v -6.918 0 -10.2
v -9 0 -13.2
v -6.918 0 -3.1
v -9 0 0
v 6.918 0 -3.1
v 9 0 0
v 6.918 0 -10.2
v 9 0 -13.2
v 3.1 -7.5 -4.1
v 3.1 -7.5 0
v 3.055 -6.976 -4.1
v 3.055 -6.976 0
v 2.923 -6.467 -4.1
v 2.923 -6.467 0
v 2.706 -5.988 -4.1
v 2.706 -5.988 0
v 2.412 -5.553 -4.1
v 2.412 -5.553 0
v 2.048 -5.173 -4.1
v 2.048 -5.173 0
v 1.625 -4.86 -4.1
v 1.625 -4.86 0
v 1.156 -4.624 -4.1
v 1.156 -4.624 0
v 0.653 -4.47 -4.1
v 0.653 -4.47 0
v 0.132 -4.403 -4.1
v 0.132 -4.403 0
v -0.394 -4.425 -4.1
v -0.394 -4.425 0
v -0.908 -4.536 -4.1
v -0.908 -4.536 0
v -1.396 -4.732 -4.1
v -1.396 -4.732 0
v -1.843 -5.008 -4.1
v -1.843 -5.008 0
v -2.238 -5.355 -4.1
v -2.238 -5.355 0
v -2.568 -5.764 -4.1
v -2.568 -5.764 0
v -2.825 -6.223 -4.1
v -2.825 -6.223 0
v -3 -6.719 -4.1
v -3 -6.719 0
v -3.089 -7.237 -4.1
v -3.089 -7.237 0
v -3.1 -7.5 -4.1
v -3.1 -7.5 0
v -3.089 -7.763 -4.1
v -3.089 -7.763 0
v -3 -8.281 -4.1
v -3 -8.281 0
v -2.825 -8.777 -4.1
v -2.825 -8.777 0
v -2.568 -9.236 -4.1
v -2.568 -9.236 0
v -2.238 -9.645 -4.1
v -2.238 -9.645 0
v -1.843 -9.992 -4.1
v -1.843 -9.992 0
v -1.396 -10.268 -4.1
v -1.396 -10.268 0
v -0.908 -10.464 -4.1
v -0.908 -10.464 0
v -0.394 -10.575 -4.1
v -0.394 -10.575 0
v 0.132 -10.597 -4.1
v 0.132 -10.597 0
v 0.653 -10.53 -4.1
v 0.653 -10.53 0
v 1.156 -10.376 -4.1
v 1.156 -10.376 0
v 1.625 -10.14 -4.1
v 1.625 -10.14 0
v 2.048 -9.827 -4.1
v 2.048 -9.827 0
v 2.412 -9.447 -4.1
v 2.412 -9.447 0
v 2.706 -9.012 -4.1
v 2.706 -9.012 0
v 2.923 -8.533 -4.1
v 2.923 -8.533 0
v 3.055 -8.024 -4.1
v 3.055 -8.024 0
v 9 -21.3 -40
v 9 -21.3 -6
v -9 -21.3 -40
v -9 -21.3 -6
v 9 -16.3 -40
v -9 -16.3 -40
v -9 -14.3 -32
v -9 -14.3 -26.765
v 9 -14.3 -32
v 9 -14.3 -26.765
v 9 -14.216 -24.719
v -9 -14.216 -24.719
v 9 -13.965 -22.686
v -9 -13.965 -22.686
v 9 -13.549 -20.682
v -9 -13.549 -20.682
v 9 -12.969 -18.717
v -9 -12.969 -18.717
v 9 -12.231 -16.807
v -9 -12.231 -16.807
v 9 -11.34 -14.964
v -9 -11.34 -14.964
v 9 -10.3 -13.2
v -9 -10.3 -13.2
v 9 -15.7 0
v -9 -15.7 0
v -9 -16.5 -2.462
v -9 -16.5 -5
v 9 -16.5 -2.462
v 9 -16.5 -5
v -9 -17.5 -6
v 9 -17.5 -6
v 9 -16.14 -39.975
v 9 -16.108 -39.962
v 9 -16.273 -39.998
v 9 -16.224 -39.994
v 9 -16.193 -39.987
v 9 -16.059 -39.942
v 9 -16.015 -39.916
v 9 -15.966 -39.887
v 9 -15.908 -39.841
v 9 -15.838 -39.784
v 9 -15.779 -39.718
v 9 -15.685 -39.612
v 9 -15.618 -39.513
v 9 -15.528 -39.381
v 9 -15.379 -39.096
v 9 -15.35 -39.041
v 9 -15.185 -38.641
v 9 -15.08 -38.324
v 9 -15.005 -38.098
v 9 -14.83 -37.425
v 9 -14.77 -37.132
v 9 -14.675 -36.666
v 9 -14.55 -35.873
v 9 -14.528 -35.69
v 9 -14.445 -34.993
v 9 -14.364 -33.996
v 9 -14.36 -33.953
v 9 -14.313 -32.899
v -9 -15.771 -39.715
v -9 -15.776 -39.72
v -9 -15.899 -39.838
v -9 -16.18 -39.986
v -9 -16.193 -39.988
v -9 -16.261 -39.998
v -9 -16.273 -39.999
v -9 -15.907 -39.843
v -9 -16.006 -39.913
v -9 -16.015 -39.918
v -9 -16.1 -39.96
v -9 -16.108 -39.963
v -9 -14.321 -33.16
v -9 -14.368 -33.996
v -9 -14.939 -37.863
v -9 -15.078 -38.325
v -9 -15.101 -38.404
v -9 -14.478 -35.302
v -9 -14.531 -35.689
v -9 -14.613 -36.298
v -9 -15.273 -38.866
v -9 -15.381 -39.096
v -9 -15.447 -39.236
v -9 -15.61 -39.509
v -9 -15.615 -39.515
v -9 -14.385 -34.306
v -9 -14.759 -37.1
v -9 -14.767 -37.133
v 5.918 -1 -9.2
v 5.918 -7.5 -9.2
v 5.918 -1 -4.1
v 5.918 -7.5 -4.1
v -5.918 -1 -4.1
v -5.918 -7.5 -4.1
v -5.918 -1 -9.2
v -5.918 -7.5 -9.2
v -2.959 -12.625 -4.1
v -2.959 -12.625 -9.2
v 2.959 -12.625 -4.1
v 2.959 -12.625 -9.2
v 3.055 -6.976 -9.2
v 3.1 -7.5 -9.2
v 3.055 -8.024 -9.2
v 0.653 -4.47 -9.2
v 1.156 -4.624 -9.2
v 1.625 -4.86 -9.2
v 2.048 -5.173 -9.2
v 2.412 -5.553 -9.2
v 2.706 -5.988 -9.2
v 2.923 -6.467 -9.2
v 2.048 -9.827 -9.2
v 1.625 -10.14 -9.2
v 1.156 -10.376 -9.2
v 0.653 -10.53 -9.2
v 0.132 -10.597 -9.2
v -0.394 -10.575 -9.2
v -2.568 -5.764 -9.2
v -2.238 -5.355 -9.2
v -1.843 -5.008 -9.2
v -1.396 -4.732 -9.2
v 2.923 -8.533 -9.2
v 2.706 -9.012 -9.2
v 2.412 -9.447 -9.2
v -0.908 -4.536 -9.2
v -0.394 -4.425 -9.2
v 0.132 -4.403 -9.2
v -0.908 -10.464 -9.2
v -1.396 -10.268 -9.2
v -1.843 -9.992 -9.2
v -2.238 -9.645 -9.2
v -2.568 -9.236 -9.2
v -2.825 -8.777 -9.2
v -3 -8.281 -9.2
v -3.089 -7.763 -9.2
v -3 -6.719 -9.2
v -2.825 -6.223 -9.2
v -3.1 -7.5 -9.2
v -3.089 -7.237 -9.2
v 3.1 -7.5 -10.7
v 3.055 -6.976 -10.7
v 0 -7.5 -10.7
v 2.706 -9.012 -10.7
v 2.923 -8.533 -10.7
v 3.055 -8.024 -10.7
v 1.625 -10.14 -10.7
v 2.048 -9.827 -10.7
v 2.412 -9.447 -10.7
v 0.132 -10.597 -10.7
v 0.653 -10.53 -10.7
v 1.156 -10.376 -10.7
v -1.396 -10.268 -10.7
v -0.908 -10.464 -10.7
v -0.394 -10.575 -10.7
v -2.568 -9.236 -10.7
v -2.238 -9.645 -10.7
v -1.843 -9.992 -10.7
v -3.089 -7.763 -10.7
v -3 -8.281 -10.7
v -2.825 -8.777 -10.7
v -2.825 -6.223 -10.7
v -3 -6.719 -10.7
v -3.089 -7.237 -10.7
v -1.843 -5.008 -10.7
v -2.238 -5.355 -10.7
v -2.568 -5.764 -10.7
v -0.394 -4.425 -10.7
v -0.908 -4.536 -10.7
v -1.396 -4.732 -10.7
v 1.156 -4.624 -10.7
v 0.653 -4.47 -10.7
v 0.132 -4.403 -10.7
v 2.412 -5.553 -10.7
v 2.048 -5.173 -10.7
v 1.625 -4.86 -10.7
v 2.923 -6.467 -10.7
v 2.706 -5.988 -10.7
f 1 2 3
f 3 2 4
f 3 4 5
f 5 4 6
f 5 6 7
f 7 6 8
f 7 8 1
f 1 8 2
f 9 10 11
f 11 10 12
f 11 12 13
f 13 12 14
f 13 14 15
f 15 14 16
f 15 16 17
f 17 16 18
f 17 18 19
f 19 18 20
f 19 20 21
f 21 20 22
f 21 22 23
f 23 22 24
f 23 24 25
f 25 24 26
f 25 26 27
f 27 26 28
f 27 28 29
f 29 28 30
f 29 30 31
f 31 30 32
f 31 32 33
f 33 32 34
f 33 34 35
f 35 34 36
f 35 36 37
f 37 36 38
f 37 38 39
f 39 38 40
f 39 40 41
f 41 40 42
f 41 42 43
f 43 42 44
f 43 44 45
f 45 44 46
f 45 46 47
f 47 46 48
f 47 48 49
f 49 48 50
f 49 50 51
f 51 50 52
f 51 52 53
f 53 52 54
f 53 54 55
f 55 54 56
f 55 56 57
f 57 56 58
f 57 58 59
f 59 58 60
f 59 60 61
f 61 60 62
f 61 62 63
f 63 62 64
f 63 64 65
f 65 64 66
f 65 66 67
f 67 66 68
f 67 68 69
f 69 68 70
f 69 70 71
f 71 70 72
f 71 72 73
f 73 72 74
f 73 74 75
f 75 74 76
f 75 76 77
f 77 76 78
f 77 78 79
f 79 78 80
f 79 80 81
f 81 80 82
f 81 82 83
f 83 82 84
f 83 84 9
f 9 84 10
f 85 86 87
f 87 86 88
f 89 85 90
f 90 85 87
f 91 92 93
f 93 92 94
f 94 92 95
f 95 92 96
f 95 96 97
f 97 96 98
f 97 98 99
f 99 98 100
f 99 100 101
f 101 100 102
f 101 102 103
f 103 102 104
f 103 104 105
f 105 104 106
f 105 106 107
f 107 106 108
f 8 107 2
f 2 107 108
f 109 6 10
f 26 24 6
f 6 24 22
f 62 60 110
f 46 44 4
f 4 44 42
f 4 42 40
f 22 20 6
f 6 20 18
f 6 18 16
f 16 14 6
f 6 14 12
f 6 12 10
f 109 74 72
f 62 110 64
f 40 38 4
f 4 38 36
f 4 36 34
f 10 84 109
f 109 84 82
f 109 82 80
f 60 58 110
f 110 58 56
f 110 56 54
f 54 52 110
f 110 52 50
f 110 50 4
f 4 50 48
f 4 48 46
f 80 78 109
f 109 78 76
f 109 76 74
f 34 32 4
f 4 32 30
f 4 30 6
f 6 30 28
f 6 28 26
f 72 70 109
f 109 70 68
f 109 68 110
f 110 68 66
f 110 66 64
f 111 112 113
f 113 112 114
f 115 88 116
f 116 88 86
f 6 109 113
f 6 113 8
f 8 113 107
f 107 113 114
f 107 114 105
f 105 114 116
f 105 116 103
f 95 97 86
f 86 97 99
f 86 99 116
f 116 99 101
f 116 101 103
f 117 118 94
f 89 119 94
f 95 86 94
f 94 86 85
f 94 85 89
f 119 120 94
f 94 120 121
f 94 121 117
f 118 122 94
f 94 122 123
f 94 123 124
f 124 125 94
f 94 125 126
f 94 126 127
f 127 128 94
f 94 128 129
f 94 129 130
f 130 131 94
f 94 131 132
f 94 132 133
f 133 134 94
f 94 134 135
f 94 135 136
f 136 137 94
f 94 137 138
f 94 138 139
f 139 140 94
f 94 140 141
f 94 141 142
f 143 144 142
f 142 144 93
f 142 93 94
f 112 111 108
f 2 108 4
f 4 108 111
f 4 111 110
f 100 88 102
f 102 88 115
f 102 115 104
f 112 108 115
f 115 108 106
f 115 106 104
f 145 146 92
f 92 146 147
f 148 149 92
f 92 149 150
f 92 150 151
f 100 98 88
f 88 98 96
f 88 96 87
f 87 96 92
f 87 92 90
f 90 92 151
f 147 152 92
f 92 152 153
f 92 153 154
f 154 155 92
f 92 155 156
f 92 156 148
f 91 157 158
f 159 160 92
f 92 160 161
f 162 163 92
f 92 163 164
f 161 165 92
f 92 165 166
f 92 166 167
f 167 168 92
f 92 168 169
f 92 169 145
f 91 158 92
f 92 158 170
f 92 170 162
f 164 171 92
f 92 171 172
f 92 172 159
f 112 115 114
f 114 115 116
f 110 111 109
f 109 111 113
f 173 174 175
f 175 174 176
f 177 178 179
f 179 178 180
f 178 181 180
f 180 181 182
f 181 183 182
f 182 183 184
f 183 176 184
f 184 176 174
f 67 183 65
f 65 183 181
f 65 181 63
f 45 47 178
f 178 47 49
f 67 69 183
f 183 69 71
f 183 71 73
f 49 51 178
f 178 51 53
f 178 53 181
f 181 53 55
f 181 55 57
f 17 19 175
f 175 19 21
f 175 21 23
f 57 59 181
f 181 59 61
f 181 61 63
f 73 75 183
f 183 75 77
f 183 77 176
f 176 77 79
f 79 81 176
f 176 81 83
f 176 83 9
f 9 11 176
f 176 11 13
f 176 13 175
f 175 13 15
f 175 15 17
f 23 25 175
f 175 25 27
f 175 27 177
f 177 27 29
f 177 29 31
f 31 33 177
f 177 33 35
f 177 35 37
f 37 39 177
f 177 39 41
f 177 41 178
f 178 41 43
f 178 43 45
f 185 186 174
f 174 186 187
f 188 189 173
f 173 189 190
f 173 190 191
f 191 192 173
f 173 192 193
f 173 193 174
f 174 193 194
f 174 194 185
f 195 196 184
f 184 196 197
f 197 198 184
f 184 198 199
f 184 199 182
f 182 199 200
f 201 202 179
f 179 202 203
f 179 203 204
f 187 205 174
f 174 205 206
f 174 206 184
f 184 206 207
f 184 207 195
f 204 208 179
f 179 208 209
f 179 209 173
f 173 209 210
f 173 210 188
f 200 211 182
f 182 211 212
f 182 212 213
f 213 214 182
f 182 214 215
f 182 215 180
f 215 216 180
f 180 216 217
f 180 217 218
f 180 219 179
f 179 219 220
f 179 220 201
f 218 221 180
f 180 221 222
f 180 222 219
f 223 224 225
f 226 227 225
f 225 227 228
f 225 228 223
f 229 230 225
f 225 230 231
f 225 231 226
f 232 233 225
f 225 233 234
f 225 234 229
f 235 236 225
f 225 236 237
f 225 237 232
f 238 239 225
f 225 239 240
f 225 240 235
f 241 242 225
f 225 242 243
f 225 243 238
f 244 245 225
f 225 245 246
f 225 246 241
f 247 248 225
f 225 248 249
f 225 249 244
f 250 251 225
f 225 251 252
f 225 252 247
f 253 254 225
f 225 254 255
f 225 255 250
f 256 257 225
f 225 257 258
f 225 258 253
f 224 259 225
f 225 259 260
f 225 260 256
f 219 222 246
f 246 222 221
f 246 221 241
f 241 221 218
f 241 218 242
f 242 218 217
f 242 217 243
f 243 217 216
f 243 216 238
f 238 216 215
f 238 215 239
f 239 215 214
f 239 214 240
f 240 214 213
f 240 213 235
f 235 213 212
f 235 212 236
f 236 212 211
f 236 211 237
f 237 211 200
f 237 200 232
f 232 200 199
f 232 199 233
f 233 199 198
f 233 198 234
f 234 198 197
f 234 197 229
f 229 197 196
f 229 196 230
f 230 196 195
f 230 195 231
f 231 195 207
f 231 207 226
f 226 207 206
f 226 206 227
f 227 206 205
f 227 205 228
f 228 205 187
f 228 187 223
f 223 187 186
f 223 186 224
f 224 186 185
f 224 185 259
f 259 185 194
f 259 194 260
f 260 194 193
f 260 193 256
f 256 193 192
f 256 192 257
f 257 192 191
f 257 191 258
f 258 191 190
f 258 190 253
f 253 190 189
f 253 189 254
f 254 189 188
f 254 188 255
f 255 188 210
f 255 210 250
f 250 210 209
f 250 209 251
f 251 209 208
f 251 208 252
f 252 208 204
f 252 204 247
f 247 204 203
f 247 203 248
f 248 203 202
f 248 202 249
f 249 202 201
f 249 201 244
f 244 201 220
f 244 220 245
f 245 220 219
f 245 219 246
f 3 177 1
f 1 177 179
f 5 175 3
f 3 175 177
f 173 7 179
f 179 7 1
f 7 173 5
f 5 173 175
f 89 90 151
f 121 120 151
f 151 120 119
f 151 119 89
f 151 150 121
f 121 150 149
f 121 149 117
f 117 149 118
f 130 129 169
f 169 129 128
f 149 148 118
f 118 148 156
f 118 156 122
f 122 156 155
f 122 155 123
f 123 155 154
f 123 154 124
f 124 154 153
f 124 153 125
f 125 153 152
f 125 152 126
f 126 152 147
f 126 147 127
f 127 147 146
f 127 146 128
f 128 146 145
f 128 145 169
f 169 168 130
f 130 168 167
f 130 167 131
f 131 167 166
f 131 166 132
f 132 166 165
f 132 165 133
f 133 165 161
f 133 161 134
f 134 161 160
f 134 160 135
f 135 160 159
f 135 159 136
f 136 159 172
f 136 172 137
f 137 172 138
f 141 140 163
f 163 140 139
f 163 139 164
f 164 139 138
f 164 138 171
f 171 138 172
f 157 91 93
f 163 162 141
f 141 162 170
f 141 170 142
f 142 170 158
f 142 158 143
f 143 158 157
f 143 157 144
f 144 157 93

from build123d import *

# Parameters (mm, degrees)
RESSALTO_EXTRUS_O1_DEPTH = 9
CHANFRO5_SIZE            = 1
CHAMFER1_SIZE            = 0.8
CHAMFER1_SIZE2           = 2.46214683
ESBO_O3_R                = 3.1
CORTE_EXTRUS_O1_DEPTH    = 10.7
CORTE_EXTRUS_O4_START    = -4
CORTE_EXTRUS_O4_DEPTH    = 5.1
CHAMFER2_SIZE            = 1
FILETE1_SIZE             = 2
FILETE1_SIZE_2           = 8


with BuildPart() as part:
    # Esboço2 → Ressalto-extrusão1 (new, symmetric)
    with BuildSketch(Plane(origin=(0, 0, 0), x_dir=(0, 0, -1), z_dir=(1, 0, 0))):
        with BuildLine():
            Line((0, 0), (0, -16.5))
            Line((0, -16.5), (6, -16.5))
            Line((6, -16.5), (6, -21.3))
            Line((6, -21.3), (40, -21.3))
            Line((40, -21.3), (40, -14.3))
            Line((40, -14.3), (26.764659966, -14.3))
            ThreePointArc((26.764659966, -14.3), (19.693592154, -13.279157617), (13.2, -10.3))
            Line((13.2, -10.3), (13.2, 0))
            Line((13.2, 0), (0, 0))
        make_face()
    extrude(amount=RESSALTO_EXTRUS_O1_DEPTH, both=True)

    # Chanfro5
    chanfro5_edges = [part.edges().sort_by_distance(p)[0] for p in [
        (0, -16.5, -6),
    ]]
    chamfer(chanfro5_edges, length=CHANFRO5_SIZE)

    # Chamfer1
    chamfer1_edges = [part.edges().sort_by_distance(p)[0] for p in [
        (0, -16.5, 0),
    ]]
    chamfer1_side = [part.faces().sort_by_distance(p)[0] for p in [
        (0, -8.25, 0),
    ]]
    chamfer(chamfer1_edges, length=CHAMFER1_SIZE, length2=CHAMFER1_SIZE2, reference=chamfer1_side[0])

    # Esboço3 → Corte-extrusão1 (cut)
    with BuildSketch(Plane(origin=(0, 0, 0), x_dir=(-1, 0, 0), z_dir=(0, 0, -1))):
        with Locations(Location((0, -7.5, 0), (0, 0, 180))):
            Circle(ESBO_O3_R)
    extrude(amount=CORTE_EXTRUS_O1_DEPTH, mode=Mode.SUBTRACT)

    # Esboço7 → Corte-extrusão4 (cut)
    with BuildSketch(Plane(origin=(0, 0, -13.2), x_dir=(-1, 0, 0), z_dir=(0, 0, -1)).offset(CORTE_EXTRUS_O4_START)):
        Polygon((2.95892013, -2.375), (5.917840259, -7.5), (5.917840259, 0), (-5.917840259, 0), (-5.917840259, -7.5), (-2.95892013, -2.375), align=None)
        Polygon((2.95892013, -12.625), (5.917840259, -7.5), (2.95892013, -2.375), (-2.95892013, -2.375), (-5.917840259, -7.5), (-2.95892013, -12.625), align=None)
    extrude(amount=-CORTE_EXTRUS_O4_DEPTH, mode=Mode.SUBTRACT)

    # Chamfer2
    chamfer2_edges = [part.edges().sort_by_distance(p)[0] for p in [
        (0, 0, -4.1),
        (5.917840259, 0, -6.65),
        (-5.917840259, 0, -6.65),
        (0, 0, -9.2),
    ]]
    chamfer(chamfer2_edges, length=CHAMFER2_SIZE)

    # Filete1
    # an asymmetric fillet: 8, 2 mm, written as the material it takes off along each edge
    with BuildSketch(Plane(origin=(-29, -14.3, -40), x_dir=(0, -1, 0), z_dir=(1, 0, 0))) as filete1_piece_1:
        with BuildLine():
            Bezier((FILETE1_SIZE, 0), (0, 0), (0, -FILETE1_SIZE_2), weights=[1, 0.707106781, 1])
            Line((0, -FILETE1_SIZE_2), (0, 0))
            Line((0, 0), (FILETE1_SIZE, 0))
        make_face()
    extrude(amount=58, mode=Mode.SUBTRACT)


solid = part.part
